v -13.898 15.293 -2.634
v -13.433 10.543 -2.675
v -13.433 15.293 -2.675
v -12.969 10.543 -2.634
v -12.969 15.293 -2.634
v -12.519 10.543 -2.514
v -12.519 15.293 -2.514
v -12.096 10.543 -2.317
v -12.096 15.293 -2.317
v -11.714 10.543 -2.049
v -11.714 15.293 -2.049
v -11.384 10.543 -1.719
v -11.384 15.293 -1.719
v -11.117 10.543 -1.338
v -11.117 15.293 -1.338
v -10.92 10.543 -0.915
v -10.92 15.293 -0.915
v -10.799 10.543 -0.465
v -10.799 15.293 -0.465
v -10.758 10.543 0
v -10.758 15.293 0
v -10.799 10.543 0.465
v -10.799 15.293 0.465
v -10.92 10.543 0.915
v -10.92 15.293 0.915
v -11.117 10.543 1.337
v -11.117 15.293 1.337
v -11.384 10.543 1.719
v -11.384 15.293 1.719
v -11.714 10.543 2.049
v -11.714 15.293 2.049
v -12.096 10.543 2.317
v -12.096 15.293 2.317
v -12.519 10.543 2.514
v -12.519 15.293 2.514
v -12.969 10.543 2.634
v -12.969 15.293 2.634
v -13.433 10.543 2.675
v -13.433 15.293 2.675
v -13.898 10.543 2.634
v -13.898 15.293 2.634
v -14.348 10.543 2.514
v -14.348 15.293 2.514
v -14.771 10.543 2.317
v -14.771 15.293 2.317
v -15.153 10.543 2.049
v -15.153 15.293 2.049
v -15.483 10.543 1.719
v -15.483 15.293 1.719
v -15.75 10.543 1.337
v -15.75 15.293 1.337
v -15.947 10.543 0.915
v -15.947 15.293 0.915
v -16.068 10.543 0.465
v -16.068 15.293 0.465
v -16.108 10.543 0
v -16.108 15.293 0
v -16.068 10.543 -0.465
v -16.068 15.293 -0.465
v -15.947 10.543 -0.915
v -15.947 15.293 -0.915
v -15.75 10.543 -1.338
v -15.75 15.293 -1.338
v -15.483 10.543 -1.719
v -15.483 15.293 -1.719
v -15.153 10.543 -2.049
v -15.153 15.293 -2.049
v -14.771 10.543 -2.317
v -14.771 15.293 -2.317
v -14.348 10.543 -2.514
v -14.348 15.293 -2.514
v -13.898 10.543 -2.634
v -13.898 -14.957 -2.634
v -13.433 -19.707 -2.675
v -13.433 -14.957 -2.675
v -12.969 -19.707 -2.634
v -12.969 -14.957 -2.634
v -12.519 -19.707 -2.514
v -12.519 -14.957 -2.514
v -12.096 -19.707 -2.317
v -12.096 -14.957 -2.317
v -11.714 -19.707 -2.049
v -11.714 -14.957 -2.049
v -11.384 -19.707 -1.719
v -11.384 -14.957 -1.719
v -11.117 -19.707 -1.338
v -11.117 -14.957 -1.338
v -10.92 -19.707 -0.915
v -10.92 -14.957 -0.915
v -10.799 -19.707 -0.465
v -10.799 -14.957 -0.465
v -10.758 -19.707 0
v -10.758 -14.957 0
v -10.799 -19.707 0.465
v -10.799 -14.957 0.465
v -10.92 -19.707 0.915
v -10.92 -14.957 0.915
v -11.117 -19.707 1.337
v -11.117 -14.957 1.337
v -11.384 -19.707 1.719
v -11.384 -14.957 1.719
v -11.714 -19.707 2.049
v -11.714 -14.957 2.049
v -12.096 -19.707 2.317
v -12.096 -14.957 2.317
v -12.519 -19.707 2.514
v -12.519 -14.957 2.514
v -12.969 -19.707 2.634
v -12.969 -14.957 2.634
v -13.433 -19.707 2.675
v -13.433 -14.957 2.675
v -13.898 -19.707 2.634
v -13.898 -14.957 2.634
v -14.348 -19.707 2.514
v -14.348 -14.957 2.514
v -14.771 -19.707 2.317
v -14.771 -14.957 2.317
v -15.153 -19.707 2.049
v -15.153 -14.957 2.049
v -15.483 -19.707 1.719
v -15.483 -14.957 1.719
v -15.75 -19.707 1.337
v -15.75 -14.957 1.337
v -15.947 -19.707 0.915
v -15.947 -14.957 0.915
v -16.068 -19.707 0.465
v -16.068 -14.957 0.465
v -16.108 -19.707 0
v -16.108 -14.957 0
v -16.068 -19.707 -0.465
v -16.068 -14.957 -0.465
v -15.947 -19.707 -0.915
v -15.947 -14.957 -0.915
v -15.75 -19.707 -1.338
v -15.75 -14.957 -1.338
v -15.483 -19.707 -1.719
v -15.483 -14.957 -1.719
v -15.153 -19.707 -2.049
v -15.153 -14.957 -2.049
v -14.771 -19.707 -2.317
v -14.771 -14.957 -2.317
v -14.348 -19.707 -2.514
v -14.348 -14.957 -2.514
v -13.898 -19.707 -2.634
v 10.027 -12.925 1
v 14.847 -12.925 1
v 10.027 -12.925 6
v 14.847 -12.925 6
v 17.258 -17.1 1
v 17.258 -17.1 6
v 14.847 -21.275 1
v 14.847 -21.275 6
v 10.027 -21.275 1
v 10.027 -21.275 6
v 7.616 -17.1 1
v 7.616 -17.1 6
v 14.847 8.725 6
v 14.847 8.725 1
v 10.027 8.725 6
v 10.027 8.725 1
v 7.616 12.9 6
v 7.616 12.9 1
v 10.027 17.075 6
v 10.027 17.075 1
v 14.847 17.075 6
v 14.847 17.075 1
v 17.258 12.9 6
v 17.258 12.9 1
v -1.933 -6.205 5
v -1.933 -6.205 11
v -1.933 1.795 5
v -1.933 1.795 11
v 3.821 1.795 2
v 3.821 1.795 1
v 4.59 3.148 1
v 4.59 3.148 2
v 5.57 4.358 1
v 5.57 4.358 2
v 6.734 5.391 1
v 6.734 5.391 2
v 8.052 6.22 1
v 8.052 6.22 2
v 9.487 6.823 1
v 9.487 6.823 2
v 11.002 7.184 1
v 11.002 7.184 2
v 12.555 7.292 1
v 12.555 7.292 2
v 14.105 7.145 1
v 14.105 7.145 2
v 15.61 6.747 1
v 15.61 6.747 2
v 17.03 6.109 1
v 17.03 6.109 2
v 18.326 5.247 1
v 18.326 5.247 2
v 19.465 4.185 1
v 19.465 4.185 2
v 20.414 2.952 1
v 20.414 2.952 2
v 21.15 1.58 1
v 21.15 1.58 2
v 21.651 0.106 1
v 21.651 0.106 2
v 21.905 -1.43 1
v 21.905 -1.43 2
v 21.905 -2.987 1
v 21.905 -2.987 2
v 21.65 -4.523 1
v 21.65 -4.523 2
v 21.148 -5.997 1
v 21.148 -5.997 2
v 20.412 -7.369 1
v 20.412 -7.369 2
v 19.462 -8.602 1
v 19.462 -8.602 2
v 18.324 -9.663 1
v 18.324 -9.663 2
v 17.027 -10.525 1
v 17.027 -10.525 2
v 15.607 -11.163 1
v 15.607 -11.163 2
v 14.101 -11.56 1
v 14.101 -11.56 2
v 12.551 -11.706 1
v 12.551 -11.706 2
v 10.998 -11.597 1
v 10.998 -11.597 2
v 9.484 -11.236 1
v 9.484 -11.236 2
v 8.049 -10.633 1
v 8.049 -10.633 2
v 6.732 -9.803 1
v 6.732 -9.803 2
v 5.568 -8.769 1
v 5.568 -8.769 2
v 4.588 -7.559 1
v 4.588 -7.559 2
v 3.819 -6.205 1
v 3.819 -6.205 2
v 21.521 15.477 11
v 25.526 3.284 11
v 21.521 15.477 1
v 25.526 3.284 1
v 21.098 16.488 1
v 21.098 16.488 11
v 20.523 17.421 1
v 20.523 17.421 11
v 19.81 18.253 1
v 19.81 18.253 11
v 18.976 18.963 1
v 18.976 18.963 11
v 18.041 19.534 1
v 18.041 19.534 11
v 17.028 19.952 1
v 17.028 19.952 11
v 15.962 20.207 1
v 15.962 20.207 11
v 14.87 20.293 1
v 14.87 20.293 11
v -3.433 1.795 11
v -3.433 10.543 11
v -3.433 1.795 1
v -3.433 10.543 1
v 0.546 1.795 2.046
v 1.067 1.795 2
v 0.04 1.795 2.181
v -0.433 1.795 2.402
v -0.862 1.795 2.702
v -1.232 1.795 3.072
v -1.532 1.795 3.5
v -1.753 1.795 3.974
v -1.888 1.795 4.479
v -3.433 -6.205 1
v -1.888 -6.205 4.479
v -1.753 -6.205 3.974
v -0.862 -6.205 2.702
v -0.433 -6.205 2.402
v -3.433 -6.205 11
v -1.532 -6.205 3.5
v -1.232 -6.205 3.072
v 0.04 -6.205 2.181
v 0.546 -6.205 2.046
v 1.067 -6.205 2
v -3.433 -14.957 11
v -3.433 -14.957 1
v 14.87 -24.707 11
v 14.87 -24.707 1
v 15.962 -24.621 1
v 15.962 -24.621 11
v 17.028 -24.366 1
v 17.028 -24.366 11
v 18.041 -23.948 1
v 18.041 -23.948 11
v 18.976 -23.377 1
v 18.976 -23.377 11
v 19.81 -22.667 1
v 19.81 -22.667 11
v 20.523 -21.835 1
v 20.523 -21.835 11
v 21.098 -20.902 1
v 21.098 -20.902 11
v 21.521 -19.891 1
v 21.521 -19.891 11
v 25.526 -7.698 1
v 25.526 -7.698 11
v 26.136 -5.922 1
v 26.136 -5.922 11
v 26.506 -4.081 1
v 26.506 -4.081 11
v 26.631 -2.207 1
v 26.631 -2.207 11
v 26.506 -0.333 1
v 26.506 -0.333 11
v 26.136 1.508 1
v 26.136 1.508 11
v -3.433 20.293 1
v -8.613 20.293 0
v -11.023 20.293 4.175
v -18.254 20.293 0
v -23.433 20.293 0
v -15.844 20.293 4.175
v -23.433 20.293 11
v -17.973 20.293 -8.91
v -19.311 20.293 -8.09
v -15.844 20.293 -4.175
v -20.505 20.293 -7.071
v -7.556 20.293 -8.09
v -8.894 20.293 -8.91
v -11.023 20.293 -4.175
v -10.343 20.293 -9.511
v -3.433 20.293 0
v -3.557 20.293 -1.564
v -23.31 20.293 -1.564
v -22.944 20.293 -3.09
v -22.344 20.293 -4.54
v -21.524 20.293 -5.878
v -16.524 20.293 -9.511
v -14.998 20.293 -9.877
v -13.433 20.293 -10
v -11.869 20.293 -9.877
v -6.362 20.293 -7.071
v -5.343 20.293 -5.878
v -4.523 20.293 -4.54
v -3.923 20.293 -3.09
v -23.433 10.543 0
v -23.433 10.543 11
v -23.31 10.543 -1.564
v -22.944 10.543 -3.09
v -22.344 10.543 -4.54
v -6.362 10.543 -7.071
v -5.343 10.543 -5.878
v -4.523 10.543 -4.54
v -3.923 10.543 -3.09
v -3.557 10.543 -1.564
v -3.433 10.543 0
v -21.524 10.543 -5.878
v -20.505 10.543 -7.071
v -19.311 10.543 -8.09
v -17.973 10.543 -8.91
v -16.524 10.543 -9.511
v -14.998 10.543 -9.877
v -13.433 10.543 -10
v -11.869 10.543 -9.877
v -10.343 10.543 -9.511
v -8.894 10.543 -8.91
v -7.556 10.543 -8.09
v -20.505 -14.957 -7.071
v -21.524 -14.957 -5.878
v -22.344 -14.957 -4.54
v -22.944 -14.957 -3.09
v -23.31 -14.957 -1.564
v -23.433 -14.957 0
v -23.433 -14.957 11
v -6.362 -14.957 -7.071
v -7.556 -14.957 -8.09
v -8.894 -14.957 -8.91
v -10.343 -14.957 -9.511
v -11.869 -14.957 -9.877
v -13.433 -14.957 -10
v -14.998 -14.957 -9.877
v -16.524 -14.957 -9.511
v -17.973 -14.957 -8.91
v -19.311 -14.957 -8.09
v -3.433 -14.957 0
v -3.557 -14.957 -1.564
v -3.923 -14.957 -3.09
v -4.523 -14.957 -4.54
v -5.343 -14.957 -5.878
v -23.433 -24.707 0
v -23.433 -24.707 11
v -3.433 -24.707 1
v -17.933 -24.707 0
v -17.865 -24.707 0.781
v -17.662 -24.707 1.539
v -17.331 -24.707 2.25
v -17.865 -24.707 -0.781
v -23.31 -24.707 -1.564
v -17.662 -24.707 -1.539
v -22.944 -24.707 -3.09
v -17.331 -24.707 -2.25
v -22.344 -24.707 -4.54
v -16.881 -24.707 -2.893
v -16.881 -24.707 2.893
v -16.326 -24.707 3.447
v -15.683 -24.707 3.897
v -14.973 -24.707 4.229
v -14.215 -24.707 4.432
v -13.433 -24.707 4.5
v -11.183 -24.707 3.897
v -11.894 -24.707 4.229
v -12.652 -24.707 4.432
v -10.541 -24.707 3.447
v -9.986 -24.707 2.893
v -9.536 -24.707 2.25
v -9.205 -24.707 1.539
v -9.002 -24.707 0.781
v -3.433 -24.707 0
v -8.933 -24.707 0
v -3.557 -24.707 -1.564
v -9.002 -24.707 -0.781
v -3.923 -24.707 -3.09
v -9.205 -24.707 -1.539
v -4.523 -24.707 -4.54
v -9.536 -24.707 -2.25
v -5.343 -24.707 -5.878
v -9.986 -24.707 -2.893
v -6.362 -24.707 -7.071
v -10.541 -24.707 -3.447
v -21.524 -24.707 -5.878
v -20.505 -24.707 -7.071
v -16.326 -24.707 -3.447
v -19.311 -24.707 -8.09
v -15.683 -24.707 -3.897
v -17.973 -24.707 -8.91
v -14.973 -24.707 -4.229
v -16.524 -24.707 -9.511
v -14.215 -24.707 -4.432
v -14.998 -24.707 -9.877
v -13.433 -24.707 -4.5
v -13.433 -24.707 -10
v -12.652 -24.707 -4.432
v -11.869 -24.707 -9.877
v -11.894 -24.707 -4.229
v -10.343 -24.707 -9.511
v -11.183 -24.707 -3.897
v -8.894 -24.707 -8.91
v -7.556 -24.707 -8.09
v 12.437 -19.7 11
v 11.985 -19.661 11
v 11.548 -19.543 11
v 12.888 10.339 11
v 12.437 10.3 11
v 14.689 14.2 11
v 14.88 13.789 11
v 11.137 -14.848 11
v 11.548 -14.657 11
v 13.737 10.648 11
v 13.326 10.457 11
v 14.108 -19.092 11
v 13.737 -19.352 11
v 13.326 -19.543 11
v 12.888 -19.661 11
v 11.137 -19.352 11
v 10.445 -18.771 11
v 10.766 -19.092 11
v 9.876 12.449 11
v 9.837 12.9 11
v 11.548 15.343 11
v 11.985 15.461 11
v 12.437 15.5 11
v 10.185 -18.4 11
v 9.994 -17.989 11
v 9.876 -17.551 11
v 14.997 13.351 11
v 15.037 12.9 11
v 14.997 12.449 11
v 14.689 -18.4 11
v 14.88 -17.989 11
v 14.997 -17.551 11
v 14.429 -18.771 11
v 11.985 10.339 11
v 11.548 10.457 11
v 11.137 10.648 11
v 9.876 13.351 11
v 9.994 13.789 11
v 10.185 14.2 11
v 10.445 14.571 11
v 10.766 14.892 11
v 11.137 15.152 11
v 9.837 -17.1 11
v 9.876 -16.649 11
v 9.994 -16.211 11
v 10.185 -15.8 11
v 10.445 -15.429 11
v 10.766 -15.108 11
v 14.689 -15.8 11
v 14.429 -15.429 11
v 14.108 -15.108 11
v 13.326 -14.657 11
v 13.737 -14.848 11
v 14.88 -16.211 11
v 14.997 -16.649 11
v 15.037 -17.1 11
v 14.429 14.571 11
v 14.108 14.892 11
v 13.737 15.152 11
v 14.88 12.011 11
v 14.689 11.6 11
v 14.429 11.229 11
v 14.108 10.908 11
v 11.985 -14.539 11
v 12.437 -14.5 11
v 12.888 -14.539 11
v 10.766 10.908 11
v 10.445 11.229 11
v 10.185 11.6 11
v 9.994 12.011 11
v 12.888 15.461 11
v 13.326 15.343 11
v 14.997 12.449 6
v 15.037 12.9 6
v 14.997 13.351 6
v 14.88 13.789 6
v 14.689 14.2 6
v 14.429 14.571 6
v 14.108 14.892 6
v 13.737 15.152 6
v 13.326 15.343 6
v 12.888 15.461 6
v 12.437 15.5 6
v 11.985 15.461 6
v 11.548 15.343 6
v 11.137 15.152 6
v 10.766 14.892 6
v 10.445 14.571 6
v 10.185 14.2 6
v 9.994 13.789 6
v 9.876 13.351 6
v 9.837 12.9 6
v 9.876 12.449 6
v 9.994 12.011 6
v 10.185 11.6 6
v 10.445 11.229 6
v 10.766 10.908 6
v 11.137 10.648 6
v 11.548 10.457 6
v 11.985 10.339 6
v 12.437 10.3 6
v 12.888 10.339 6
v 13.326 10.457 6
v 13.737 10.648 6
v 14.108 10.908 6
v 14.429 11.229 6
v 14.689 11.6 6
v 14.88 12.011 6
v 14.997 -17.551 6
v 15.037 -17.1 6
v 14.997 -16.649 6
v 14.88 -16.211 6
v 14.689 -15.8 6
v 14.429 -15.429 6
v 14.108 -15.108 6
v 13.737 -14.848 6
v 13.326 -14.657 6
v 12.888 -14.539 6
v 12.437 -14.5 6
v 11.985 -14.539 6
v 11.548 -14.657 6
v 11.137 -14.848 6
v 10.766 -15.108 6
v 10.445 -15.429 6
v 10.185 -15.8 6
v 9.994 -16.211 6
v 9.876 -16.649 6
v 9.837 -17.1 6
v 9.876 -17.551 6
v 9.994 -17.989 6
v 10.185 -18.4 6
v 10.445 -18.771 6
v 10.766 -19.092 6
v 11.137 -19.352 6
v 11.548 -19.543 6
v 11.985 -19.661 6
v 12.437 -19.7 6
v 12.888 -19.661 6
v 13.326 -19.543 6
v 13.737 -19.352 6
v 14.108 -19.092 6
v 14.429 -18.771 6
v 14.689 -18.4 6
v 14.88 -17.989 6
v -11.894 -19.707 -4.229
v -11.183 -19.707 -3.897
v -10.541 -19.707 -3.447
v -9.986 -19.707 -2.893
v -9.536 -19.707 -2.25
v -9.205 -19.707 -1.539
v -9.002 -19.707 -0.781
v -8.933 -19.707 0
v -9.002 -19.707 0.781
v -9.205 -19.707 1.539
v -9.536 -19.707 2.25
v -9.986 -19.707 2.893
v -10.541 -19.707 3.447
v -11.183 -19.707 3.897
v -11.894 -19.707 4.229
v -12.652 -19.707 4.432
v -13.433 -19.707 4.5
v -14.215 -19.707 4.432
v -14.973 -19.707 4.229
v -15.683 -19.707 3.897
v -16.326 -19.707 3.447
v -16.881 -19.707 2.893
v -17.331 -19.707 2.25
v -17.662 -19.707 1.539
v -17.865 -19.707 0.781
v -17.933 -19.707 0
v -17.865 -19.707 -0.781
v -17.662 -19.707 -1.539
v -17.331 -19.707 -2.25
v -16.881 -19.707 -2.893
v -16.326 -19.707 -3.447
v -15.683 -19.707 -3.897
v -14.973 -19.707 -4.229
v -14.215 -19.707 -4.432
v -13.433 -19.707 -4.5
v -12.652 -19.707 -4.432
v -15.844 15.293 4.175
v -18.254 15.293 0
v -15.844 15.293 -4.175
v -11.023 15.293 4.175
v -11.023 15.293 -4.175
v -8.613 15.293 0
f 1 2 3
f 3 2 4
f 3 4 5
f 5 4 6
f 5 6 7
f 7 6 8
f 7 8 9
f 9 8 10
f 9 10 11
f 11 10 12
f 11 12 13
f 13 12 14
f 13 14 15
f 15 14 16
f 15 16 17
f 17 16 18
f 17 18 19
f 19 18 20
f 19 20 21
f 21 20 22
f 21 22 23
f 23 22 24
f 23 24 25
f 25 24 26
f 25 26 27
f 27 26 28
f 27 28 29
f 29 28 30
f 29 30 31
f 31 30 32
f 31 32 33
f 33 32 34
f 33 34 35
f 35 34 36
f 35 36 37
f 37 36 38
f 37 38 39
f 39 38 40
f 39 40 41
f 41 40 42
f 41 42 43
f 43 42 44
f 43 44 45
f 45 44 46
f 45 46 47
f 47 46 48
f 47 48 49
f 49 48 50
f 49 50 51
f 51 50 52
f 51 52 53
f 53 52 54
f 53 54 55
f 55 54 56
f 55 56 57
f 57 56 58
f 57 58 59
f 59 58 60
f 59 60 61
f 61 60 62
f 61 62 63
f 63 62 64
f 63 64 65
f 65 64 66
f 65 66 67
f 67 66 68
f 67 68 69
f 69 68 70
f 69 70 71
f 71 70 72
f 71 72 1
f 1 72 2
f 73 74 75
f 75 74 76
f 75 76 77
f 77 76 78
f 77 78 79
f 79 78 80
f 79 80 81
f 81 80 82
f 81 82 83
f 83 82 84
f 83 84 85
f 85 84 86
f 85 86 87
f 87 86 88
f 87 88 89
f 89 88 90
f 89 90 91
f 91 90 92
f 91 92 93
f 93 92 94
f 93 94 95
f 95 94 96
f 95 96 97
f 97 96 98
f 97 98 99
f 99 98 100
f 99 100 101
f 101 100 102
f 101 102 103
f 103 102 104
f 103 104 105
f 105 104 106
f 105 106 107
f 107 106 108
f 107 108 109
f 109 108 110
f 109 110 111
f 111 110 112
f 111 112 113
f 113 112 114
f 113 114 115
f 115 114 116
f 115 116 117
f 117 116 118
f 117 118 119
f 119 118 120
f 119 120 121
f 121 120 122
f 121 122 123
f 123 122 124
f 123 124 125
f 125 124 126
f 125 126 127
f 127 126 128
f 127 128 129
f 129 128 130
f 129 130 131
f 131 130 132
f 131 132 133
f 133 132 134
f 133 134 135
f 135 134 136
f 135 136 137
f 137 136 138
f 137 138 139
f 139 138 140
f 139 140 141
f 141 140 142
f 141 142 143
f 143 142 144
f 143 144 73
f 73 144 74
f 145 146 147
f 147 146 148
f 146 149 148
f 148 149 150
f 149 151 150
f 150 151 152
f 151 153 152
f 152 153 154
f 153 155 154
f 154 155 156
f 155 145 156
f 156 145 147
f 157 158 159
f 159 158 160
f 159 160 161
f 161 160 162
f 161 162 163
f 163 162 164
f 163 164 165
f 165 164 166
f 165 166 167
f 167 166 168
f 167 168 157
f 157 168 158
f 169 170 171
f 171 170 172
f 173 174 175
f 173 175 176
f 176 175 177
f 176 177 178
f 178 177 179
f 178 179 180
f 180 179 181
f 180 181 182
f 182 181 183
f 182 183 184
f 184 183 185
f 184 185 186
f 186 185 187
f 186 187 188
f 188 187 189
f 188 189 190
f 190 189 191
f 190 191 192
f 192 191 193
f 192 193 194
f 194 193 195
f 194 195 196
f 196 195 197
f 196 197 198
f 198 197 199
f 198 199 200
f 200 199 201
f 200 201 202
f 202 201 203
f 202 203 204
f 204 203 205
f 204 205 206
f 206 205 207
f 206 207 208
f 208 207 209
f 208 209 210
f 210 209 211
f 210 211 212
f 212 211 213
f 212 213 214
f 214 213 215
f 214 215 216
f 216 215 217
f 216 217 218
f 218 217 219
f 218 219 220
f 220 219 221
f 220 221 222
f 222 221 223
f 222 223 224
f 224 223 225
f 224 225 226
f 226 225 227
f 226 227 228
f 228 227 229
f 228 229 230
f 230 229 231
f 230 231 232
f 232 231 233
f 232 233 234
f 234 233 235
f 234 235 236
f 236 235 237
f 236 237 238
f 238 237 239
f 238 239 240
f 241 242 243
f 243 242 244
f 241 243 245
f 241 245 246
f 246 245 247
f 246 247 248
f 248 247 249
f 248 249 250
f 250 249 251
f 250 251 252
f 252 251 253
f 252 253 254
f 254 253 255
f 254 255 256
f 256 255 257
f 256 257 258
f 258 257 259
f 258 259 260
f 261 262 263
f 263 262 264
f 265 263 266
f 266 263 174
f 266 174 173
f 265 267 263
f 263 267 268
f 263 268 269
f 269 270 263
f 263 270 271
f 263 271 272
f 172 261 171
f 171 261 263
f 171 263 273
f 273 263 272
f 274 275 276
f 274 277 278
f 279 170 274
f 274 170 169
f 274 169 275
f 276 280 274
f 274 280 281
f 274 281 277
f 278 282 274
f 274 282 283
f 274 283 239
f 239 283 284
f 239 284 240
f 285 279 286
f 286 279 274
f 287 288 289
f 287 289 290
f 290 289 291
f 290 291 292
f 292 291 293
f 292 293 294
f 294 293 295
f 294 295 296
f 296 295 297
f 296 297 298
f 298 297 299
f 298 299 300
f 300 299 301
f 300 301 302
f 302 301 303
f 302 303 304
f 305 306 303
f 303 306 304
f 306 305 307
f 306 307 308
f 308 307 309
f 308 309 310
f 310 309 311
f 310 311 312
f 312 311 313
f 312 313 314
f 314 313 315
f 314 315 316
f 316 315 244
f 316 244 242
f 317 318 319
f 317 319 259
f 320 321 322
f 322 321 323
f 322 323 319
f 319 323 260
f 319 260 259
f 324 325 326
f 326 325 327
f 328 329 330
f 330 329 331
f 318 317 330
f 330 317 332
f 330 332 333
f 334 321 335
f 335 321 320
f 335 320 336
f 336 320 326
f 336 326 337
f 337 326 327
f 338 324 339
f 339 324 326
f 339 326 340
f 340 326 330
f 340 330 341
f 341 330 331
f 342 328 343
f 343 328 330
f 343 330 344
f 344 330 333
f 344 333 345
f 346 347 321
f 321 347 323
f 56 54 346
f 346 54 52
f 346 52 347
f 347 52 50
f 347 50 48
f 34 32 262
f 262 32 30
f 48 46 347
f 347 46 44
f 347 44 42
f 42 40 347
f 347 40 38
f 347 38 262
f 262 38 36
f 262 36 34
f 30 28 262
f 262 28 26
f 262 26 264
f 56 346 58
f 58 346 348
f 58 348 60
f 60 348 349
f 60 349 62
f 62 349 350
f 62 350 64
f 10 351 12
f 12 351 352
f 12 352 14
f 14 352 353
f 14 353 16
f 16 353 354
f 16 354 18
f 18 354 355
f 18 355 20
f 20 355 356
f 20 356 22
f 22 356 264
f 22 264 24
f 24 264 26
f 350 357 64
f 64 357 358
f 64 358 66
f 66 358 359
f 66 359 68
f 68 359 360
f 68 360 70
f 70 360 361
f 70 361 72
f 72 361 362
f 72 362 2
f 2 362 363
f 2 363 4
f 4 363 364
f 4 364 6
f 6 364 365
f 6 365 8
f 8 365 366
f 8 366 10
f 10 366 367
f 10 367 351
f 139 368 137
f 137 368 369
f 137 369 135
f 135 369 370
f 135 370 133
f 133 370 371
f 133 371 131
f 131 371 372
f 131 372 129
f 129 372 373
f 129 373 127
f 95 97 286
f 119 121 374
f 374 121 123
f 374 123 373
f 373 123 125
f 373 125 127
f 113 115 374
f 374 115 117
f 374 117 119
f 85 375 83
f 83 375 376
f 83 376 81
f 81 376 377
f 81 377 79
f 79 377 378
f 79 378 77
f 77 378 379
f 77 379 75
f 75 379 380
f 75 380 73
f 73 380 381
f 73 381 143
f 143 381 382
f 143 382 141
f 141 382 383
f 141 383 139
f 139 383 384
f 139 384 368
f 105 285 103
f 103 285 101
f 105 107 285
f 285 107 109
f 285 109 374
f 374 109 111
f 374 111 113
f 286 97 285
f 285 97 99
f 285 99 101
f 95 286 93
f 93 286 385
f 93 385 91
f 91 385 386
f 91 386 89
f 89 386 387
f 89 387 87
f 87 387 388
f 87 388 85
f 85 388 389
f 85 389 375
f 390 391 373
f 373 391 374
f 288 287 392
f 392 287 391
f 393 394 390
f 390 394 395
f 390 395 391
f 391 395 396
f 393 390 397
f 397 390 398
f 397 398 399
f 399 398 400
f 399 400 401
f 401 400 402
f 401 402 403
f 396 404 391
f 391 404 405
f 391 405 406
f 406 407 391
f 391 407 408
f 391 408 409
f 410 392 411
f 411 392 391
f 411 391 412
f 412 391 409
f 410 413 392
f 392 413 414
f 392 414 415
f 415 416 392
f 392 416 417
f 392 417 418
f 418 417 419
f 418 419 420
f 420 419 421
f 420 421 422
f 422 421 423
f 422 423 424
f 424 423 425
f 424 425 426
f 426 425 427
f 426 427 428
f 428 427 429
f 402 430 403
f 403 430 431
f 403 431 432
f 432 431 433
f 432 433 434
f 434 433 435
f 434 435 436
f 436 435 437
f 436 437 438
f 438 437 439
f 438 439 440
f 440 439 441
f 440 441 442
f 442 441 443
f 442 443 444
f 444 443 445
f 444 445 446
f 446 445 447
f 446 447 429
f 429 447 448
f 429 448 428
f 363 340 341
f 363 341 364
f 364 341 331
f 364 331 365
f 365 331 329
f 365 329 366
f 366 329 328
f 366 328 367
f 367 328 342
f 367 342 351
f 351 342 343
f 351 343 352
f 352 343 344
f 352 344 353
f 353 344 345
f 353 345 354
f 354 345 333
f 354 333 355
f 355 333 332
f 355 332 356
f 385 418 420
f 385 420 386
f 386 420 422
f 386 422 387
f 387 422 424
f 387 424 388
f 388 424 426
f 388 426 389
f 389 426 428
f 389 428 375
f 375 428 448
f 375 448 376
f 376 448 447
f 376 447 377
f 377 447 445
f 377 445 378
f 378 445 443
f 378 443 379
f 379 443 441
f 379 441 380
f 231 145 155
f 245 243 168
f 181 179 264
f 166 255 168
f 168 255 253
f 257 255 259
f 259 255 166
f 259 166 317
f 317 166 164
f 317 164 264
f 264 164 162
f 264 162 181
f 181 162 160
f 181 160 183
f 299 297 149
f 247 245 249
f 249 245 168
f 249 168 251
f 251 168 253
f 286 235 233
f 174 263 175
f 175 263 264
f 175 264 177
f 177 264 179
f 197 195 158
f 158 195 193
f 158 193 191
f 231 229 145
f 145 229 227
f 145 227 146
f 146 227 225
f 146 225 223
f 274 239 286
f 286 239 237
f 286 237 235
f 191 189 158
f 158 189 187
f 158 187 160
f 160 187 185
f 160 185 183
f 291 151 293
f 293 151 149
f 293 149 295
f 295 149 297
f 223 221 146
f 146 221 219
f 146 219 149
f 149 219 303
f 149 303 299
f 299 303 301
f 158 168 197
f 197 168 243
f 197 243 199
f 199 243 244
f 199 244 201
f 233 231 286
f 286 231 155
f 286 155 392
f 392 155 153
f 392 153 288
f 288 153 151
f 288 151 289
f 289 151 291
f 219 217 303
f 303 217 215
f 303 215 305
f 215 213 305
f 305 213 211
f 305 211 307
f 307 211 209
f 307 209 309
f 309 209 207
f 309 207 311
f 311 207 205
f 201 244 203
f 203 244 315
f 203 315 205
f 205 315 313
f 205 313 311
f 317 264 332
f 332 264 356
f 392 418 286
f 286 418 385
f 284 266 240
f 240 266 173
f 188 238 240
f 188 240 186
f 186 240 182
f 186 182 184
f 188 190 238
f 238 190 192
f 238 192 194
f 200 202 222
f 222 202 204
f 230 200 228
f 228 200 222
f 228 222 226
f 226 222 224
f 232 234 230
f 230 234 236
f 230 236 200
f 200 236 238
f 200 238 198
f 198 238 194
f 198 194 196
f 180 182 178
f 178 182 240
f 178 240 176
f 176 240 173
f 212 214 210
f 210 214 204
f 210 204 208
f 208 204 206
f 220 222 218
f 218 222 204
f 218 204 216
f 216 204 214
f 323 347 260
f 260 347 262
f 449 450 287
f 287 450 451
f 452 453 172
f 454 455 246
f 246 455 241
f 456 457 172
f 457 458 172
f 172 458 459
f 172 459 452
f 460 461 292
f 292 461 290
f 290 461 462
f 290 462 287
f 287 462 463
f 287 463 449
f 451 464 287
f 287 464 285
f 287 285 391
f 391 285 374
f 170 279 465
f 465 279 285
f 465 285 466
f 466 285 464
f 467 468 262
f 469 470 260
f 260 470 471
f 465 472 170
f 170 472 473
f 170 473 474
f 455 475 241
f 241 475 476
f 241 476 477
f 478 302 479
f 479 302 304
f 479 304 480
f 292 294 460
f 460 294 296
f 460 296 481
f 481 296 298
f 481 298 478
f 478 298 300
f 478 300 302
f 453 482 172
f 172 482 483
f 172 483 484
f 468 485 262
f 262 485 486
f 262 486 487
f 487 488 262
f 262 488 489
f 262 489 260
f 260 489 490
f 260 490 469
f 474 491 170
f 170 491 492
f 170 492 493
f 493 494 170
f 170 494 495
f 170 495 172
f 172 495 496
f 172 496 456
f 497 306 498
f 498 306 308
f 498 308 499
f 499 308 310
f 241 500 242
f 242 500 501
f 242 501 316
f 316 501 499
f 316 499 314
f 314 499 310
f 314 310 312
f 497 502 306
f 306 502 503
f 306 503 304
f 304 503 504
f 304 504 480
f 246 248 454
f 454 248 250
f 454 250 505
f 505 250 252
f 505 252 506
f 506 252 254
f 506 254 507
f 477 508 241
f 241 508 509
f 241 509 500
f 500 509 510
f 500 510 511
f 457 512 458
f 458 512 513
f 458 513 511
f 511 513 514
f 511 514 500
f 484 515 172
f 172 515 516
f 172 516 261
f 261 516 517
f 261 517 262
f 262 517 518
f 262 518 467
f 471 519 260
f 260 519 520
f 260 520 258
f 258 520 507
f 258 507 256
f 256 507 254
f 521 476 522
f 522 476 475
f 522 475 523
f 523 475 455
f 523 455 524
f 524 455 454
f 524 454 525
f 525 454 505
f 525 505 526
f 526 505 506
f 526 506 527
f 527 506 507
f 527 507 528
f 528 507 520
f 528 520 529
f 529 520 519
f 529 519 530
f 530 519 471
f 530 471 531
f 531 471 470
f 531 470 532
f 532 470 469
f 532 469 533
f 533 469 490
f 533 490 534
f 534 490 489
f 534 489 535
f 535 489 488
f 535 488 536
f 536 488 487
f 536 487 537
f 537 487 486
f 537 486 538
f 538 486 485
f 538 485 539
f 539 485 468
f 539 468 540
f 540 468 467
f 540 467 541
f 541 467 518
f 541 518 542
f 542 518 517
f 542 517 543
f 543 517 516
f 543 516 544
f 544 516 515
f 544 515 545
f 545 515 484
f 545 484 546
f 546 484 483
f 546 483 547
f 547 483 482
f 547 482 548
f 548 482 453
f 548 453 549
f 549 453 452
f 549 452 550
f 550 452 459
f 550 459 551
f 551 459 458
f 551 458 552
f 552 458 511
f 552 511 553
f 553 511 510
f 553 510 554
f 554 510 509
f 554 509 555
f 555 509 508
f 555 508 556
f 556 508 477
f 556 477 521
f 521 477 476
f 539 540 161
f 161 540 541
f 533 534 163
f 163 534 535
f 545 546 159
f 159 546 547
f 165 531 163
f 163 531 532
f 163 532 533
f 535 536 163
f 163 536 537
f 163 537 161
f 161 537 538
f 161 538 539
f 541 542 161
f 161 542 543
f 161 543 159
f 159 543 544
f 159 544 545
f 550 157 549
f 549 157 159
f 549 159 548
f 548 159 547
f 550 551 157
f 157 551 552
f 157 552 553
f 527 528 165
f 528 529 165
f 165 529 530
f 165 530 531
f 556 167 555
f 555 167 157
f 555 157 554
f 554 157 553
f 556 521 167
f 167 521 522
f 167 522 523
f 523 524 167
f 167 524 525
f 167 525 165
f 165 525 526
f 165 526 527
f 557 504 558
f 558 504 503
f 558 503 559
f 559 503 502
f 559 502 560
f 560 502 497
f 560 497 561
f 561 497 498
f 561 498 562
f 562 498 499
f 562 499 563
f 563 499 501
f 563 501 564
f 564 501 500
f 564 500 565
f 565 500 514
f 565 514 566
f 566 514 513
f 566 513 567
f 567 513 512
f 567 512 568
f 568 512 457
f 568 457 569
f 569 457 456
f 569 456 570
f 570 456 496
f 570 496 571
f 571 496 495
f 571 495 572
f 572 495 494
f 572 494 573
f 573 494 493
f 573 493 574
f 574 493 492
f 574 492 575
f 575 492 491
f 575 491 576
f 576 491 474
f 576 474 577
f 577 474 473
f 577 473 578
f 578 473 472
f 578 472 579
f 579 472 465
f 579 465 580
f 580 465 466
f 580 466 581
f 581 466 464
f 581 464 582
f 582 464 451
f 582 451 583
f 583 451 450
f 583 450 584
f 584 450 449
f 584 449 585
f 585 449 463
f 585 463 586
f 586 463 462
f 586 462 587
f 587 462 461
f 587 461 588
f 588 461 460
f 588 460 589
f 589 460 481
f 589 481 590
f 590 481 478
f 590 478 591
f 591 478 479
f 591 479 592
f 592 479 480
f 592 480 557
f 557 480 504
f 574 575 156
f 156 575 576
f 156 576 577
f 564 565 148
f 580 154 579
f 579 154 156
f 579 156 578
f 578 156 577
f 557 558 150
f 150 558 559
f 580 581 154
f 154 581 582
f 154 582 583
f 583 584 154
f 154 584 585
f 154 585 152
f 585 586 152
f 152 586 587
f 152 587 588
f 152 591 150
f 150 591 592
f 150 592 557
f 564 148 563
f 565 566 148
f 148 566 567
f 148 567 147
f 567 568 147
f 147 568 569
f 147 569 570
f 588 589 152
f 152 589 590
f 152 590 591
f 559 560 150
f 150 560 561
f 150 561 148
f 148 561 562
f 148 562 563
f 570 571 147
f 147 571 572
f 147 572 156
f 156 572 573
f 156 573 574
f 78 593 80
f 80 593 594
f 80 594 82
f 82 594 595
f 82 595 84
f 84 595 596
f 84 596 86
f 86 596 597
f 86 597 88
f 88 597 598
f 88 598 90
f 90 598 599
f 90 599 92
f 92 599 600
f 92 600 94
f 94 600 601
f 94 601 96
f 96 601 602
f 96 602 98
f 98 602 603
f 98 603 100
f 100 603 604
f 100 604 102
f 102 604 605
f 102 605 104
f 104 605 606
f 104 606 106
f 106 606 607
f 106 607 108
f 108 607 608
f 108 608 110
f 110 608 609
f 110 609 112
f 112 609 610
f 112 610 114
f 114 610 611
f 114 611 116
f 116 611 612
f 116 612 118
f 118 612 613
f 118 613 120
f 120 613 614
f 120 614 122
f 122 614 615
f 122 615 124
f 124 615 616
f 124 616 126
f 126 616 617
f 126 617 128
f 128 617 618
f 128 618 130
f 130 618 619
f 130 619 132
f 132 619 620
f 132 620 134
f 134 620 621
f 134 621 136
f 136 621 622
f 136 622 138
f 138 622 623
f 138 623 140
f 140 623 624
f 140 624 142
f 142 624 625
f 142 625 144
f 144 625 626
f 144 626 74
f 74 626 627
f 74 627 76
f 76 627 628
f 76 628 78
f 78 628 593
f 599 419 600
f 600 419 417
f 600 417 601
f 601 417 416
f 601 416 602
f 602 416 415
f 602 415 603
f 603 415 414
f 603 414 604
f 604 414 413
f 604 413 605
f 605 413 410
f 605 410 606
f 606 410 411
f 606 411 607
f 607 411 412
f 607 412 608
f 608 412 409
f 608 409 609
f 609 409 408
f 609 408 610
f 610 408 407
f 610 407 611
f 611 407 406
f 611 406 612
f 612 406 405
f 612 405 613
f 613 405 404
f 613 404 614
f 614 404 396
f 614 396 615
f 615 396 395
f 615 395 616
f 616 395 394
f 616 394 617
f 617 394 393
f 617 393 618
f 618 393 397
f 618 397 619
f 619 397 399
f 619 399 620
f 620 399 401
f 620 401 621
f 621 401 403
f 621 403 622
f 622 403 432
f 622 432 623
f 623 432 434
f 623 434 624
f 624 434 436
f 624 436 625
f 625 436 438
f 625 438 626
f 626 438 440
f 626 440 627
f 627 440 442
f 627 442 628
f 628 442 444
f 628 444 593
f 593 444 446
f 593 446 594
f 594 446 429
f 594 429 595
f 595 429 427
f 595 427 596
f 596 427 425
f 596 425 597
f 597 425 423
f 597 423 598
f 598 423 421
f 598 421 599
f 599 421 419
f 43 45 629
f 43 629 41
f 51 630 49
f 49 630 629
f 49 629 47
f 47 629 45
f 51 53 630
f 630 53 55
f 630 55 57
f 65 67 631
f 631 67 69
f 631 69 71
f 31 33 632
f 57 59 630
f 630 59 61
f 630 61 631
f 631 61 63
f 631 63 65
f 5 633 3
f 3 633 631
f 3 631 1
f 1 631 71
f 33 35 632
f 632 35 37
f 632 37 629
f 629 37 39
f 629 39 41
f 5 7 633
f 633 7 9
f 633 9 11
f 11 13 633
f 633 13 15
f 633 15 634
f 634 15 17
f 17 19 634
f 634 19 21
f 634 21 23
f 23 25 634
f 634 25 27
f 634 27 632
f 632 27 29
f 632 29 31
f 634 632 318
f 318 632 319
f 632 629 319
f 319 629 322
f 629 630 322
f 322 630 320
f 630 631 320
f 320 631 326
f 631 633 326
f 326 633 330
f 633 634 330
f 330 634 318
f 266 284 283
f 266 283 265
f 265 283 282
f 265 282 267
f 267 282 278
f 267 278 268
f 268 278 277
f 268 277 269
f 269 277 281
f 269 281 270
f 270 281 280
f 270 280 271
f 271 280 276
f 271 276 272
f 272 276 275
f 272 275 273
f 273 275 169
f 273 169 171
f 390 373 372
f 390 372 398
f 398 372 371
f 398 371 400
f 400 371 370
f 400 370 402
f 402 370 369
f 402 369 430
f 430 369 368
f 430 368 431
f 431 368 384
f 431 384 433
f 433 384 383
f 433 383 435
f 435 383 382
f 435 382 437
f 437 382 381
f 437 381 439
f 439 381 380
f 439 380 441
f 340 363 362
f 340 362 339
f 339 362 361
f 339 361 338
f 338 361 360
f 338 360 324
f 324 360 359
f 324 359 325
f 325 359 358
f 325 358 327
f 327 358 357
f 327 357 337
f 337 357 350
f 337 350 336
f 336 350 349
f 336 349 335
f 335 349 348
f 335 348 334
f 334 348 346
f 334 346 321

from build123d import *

# Parameters (mm, degrees)
SKETCH1_R           = 9.5
BOSS_EXTRUDE1_DEPTH = 10
BOSS_EXTRUDE4_START = -9.75
BOSS_EXTRUDE4_DEPTH = 9.75
BOSS_EXTRUDE5_DEPTH = 9.75
SKETCH19_R          = 2.675
CUT_EXTRUDE1_DEPTH  = 54.237071403
CUT_EXTRUDE2_DEPTH  = 1
SKETCH21_R          = 9.541498329
BOSS_EXTRUDE6_DEPTH = 8
SKETCH22_W          = 10.184582577
SKETCH22_H          = 8
CUT_EXTRUDE3_DEPTH  = 1
SKETCH24_R          = 2.6
BOSS_EXTRUDE8_DEPTH = 1
SKETCH25_R          = 2.6
BOSS_EXTRUDE9_DEPTH = 5
SKETCH26_R          = 4.5
CUT_EXTRUDE4_DEPTH  = 5
CUT_EXTRUDE5_DEPTH  = 5
FILLET1_R           = 3
FILLET2_R           = 10


with BuildPart() as part:
    # Sketch1 → Boss-Extrude1 (new body)
    with BuildSketch(Plane.XY):
        with BuildLine():
            Line((-23.433441641, -14.957015859), (-23.433441641, -24.707015859))
            Line((-23.433441641, -24.707015859), (14.870192677, -24.707015859))
            ThreePointArc((14.870192677, -24.707015859), (18.975681404, -23.376668609), (21.520677092, -19.891290805))
            Line((21.520677092, -19.891290805), (25.525569024, -7.69755511))
            ThreePointArc((25.525569024, -7.69755511), (26.630542081, -2.207015859), (25.525569024, 3.283523393))
            Line((25.525569024, 3.283523393), (21.520677092, 15.477259087))
            ThreePointArc((21.520677092, 15.477259087), (18.975681404, 18.962636892), (14.870192677, 20.292984141))
            Line((14.870192677, 20.292984141), (-23.433441641, 20.292984141))
            Line((-23.433441641, 20.292984141), (-23.433441641, 10.542984141))
            Line((-23.433441641, 10.542984141), (-3.433441641, 10.542984141))
            Line((-3.433441641, 10.542984141), (-3.433441641, 1.794523598))
            Line((-3.433441641, 1.794523598), (-1.933441641, 1.794523598))
            Line((-1.933441641, 1.794523598), (-1.933441641, -6.205476402))
            Line((-1.933441641, -6.205476402), (-3.433441641, -6.205476402))
            Line((-3.433441641, -6.205476402), (-3.433441641, -14.957015859))
            Line((-3.433441641, -14.957015859), (-23.433441641, -14.957015859))
        make_face()
        with Locations((12.436989349, -2.207015859)):
            Circle(SKETCH1_R, mode=Mode.SUBTRACT)
        Polygon((10.026551975, -12.925000001), (14.847426723, -12.925000001), (17.257864097, -17.100000001), (14.847426723, -21.275000001), (10.026551975, -21.275000001), (7.616114601, -17.100000001), align=None, mode=Mode.SUBTRACT)
        Polygon((14.847426723, 8.724999999), (17.257864097, 12.899999999), (14.847426723, 17.074999999), (10.026551975, 17.074999999), (7.616114601, 12.899999999), (10.026551975, 8.724999999), align=None, mode=Mode.SUBTRACT)
    extrude(amount=BOSS_EXTRUDE1_DEPTH)

    # Sketch2 → Boss-Extrude4 (add)
    with BuildSketch(Plane(origin=(0, 20.292984141, 0), x_dir=(1, 0, 0), z_dir=(0, 1, 0)).offset(BOSS_EXTRUDE4_START)):
        with BuildLine():
            Line((-23.433441641, 0), (-3.433441641, 0))
            ThreePointArc((-3.433441641, 0), (-6.362373829, 7.071067812), (-13.433441641, 10))
            Line((-13.433441641, 10), (-23.433441641, 10))
            Line((-23.433441641, 10), (-23.433441641, 0))
        make_face()
    extrude(amount=BOSS_EXTRUDE4_DEPTH)

    # Sketch18 → Boss-Extrude5 (add)
    with BuildSketch(Plane.XZ.offset(24.707015859)):
        with BuildLine():
            Line((-23.433441641, 0), (-3.433441641, 0))
            ThreePointArc((-3.433441641, 0), (-6.362373829, -7.071067812), (-13.433441641, -10))
            Line((-13.433441641, -10), (-23.433441641, -10))
            Line((-23.433441641, -10), (-23.433441641, 0))
        make_face()
    extrude(amount=-BOSS_EXTRUDE5_DEPTH)

    # Sketch19 → Cut-Extrude1 (cut, through all)
    with BuildSketch(Plane.XZ.offset(24.707015859)):
        with Locations(Location((-13.433441641, 0, 0), (0, 0, 270))):
            Circle(SKETCH19_R)
    extrude(amount=-CUT_EXTRUDE1_DEPTH, mode=Mode.SUBTRACT)

    # Sketch20 → Cut-Extrude2 (cut)
    with BuildSketch(Plane(origin=(0, 0, 0), x_dir=(-1, 0, 0), z_dir=(0, 0, -1))):
        Polygon((3.433441641, -24.707015859), (3.433441641, 20.292984141), (-35.58098809, 20.292984141), (-33.558086905, -24.707015859), align=None)
    extrude(amount=-CUT_EXTRUDE2_DEPTH, mode=Mode.SUBTRACT)

    # Sketch21 → Boss-Extrude6 (add)
    with BuildSketch(Plane.XY.offset(10)):
        with Locations((12.436989349, -2.207015859)):
            Circle(SKETCH21_R)
    extrude(amount=-BOSS_EXTRUDE6_DEPTH)

    # Sketch22 → Cut-Extrude3 (cut)
    with BuildSketch(Plane(origin=(0, 0, 1), x_dir=(-1, 0, 0), z_dir=(0, 0, -1))):
        with Locations((-3.158849648, -2.205476402)):
            Rectangle(SKETCH22_W, SKETCH22_H)
    extrude(amount=-CUT_EXTRUDE3_DEPTH, mode=Mode.SUBTRACT)

    # Sketch24 → Boss-Extrude8 (add)
    # profile 1 of 3: a face of its own
    with BuildSketch(Plane.XY.offset(10)):
        with BuildLine():
            Line((14.870192677, -24.707015859), (-23.433441641, -24.707015859))
            Line((-23.433441641, -24.707015859), (-23.433441641, -14.957015859))
            Line((-23.433441641, -14.957015859), (-3.433441641, -14.957015859))
            Line((-3.433441641, -14.957015859), (-3.433441641, -6.205476402))
            Line((-3.433441641, -6.205476402), (-1.933441641, -6.205476402))
            Line((-1.933441641, -6.205476402), (-1.933441641, 1.794523598))
            Line((-1.933441641, 1.794523598), (-3.433441641, 1.794523598))
            Line((-3.433441641, 1.794523598), (-3.433441641, 10.542984141))
            Line((-3.433441641, 10.542984141), (-23.433441641, 10.542984141))
            Line((-23.433441641, 10.542984141), (-23.433441641, 20.292984141))
            Line((-23.433441641, 20.292984141), (14.870192677, 20.292984141))
            ThreePointArc((14.870192677, 20.292984141), (18.975681404, 18.962636892), (21.520677092, 15.477259087))
            Line((21.520677092, 15.477259087), (25.525569024, 3.283523393))
            ThreePointArc((25.525569024, 3.283523393), (26.630542081, -2.207015859), (25.525569024, -7.69755511))
            Line((25.525569024, -7.69755511), (21.520677092, -19.891290805))
            ThreePointArc((21.520677092, -19.891290805), (18.975681404, -23.376668609), (14.870192677, -24.707015859))
        make_face()
        Polygon((14.847426723, 8.724999999), (17.257864097, 12.899999999), (14.847426723, 17.074999999), (10.026551975, 17.074999999), (7.616114601, 12.899999999), (10.026551975, 8.724999999), align=None, mode=Mode.SUBTRACT)
        Polygon((10.026551975, -12.925000001), (14.847426723, -12.925000001), (17.257864097, -17.100000001), (14.847426723, -21.275000001), (10.026551975, -21.275000001), (7.616114601, -17.100000001), align=None, mode=Mode.SUBTRACT)
    # profile 2 of 3: a face of its own
    with BuildSketch(Plane.XY.offset(10)):
        with Locations((12.436989349, 12.899999999)):
            Circle(SKETCH24_R)
    # profile 3 of 3: a face of its own
    with BuildSketch(Plane.XY.offset(10)):
        with Locations((12.436989349, -17.100000001)):
            Circle(SKETCH24_R)
    extrude(amount=BOSS_EXTRUDE8_DEPTH)


with BuildPart() as boss_extrude8_kept_piece:
    # of the separate pieces the step leaves, the one the design keeps (boss_extrude8_pieces_kept)
    add(part.part.solids().sort_by_distance((-3.433441641, -14.957015859, 0))[0])

    # Sketch25 → Boss-Extrude9 (add)
    # profile 1 of 2: a face of its own
    with BuildSketch(Plane.XY.offset(11)):
        Polygon((10.026551975, 8.724999999), (14.847426723, 8.724999999), (17.257864097, 12.899999999), (14.847426723, 17.074999999), (10.026551975, 17.074999999), (7.616114601, 12.899999999), align=None)
        with Locations((12.436989349, 12.899999999)):
            Circle(SKETCH25_R, mode=Mode.SUBTRACT)
    # profile 2 of 2: a face of its own
    with BuildSketch(Plane.XY.offset(11)):
        Polygon((14.847426723, -12.925000001), (10.026551975, -12.925000001), (7.616114601, -17.100000001), (10.026551975, -21.275000001), (14.847426723, -21.275000001), (17.257864097, -17.100000001), align=None)
        with Locations((12.436989349, -17.100000001)):
            Circle(SKETCH25_R, mode=Mode.SUBTRACT)
    extrude(amount=-BOSS_EXTRUDE9_DEPTH)

    # Sketch26 → Cut-Extrude4 (cut)
    with BuildSketch(Plane.XZ.offset(24.707015859)):
        with Locations((-13.433441641, 0)):
            Circle(SKETCH26_R)
    extrude(amount=-CUT_EXTRUDE4_DEPTH, mode=Mode.SUBTRACT)

    # Sketch27 → Cut-Extrude5 (cut)
    with BuildSketch(Plane(origin=(0, 20.292984141, 0), x_dir=(1, 0, 0), z_dir=(0, 1, 0))):
        Polygon((-8.612566893, 0), (-11.023004267, 4.175), (-15.843879015, 4.175), (-18.254316389, 0), (-15.843879015, -4.175), (-11.023004267, -4.175), align=None)
    extrude(amount=-CUT_EXTRUDE5_DEPTH, mode=Mode.SUBTRACT)

    # Fillet1
    fillet1_edges = [boss_extrude8_kept_piece.edges().sort_by_distance(p)[0] for p in [
        (-1.933441641, -2.205476402, 2),
    ]]
    fillet(fillet1_edges, radius=FILLET1_R)

    # Fillet2
    fillet2_edges = [boss_extrude8_kept_piece.edges().sort_by_distance(p)[0] for p in [
        (-23.433441641, -19.832015859, -10),
        (-23.433441641, 15.417984141, -10),
    ]]
    fillet(fillet2_edges, radius=FILLET2_R - 0.0001)  # a hair under: the kernel refuses the full size


solid = boss_extrude8_kept_piece.part
